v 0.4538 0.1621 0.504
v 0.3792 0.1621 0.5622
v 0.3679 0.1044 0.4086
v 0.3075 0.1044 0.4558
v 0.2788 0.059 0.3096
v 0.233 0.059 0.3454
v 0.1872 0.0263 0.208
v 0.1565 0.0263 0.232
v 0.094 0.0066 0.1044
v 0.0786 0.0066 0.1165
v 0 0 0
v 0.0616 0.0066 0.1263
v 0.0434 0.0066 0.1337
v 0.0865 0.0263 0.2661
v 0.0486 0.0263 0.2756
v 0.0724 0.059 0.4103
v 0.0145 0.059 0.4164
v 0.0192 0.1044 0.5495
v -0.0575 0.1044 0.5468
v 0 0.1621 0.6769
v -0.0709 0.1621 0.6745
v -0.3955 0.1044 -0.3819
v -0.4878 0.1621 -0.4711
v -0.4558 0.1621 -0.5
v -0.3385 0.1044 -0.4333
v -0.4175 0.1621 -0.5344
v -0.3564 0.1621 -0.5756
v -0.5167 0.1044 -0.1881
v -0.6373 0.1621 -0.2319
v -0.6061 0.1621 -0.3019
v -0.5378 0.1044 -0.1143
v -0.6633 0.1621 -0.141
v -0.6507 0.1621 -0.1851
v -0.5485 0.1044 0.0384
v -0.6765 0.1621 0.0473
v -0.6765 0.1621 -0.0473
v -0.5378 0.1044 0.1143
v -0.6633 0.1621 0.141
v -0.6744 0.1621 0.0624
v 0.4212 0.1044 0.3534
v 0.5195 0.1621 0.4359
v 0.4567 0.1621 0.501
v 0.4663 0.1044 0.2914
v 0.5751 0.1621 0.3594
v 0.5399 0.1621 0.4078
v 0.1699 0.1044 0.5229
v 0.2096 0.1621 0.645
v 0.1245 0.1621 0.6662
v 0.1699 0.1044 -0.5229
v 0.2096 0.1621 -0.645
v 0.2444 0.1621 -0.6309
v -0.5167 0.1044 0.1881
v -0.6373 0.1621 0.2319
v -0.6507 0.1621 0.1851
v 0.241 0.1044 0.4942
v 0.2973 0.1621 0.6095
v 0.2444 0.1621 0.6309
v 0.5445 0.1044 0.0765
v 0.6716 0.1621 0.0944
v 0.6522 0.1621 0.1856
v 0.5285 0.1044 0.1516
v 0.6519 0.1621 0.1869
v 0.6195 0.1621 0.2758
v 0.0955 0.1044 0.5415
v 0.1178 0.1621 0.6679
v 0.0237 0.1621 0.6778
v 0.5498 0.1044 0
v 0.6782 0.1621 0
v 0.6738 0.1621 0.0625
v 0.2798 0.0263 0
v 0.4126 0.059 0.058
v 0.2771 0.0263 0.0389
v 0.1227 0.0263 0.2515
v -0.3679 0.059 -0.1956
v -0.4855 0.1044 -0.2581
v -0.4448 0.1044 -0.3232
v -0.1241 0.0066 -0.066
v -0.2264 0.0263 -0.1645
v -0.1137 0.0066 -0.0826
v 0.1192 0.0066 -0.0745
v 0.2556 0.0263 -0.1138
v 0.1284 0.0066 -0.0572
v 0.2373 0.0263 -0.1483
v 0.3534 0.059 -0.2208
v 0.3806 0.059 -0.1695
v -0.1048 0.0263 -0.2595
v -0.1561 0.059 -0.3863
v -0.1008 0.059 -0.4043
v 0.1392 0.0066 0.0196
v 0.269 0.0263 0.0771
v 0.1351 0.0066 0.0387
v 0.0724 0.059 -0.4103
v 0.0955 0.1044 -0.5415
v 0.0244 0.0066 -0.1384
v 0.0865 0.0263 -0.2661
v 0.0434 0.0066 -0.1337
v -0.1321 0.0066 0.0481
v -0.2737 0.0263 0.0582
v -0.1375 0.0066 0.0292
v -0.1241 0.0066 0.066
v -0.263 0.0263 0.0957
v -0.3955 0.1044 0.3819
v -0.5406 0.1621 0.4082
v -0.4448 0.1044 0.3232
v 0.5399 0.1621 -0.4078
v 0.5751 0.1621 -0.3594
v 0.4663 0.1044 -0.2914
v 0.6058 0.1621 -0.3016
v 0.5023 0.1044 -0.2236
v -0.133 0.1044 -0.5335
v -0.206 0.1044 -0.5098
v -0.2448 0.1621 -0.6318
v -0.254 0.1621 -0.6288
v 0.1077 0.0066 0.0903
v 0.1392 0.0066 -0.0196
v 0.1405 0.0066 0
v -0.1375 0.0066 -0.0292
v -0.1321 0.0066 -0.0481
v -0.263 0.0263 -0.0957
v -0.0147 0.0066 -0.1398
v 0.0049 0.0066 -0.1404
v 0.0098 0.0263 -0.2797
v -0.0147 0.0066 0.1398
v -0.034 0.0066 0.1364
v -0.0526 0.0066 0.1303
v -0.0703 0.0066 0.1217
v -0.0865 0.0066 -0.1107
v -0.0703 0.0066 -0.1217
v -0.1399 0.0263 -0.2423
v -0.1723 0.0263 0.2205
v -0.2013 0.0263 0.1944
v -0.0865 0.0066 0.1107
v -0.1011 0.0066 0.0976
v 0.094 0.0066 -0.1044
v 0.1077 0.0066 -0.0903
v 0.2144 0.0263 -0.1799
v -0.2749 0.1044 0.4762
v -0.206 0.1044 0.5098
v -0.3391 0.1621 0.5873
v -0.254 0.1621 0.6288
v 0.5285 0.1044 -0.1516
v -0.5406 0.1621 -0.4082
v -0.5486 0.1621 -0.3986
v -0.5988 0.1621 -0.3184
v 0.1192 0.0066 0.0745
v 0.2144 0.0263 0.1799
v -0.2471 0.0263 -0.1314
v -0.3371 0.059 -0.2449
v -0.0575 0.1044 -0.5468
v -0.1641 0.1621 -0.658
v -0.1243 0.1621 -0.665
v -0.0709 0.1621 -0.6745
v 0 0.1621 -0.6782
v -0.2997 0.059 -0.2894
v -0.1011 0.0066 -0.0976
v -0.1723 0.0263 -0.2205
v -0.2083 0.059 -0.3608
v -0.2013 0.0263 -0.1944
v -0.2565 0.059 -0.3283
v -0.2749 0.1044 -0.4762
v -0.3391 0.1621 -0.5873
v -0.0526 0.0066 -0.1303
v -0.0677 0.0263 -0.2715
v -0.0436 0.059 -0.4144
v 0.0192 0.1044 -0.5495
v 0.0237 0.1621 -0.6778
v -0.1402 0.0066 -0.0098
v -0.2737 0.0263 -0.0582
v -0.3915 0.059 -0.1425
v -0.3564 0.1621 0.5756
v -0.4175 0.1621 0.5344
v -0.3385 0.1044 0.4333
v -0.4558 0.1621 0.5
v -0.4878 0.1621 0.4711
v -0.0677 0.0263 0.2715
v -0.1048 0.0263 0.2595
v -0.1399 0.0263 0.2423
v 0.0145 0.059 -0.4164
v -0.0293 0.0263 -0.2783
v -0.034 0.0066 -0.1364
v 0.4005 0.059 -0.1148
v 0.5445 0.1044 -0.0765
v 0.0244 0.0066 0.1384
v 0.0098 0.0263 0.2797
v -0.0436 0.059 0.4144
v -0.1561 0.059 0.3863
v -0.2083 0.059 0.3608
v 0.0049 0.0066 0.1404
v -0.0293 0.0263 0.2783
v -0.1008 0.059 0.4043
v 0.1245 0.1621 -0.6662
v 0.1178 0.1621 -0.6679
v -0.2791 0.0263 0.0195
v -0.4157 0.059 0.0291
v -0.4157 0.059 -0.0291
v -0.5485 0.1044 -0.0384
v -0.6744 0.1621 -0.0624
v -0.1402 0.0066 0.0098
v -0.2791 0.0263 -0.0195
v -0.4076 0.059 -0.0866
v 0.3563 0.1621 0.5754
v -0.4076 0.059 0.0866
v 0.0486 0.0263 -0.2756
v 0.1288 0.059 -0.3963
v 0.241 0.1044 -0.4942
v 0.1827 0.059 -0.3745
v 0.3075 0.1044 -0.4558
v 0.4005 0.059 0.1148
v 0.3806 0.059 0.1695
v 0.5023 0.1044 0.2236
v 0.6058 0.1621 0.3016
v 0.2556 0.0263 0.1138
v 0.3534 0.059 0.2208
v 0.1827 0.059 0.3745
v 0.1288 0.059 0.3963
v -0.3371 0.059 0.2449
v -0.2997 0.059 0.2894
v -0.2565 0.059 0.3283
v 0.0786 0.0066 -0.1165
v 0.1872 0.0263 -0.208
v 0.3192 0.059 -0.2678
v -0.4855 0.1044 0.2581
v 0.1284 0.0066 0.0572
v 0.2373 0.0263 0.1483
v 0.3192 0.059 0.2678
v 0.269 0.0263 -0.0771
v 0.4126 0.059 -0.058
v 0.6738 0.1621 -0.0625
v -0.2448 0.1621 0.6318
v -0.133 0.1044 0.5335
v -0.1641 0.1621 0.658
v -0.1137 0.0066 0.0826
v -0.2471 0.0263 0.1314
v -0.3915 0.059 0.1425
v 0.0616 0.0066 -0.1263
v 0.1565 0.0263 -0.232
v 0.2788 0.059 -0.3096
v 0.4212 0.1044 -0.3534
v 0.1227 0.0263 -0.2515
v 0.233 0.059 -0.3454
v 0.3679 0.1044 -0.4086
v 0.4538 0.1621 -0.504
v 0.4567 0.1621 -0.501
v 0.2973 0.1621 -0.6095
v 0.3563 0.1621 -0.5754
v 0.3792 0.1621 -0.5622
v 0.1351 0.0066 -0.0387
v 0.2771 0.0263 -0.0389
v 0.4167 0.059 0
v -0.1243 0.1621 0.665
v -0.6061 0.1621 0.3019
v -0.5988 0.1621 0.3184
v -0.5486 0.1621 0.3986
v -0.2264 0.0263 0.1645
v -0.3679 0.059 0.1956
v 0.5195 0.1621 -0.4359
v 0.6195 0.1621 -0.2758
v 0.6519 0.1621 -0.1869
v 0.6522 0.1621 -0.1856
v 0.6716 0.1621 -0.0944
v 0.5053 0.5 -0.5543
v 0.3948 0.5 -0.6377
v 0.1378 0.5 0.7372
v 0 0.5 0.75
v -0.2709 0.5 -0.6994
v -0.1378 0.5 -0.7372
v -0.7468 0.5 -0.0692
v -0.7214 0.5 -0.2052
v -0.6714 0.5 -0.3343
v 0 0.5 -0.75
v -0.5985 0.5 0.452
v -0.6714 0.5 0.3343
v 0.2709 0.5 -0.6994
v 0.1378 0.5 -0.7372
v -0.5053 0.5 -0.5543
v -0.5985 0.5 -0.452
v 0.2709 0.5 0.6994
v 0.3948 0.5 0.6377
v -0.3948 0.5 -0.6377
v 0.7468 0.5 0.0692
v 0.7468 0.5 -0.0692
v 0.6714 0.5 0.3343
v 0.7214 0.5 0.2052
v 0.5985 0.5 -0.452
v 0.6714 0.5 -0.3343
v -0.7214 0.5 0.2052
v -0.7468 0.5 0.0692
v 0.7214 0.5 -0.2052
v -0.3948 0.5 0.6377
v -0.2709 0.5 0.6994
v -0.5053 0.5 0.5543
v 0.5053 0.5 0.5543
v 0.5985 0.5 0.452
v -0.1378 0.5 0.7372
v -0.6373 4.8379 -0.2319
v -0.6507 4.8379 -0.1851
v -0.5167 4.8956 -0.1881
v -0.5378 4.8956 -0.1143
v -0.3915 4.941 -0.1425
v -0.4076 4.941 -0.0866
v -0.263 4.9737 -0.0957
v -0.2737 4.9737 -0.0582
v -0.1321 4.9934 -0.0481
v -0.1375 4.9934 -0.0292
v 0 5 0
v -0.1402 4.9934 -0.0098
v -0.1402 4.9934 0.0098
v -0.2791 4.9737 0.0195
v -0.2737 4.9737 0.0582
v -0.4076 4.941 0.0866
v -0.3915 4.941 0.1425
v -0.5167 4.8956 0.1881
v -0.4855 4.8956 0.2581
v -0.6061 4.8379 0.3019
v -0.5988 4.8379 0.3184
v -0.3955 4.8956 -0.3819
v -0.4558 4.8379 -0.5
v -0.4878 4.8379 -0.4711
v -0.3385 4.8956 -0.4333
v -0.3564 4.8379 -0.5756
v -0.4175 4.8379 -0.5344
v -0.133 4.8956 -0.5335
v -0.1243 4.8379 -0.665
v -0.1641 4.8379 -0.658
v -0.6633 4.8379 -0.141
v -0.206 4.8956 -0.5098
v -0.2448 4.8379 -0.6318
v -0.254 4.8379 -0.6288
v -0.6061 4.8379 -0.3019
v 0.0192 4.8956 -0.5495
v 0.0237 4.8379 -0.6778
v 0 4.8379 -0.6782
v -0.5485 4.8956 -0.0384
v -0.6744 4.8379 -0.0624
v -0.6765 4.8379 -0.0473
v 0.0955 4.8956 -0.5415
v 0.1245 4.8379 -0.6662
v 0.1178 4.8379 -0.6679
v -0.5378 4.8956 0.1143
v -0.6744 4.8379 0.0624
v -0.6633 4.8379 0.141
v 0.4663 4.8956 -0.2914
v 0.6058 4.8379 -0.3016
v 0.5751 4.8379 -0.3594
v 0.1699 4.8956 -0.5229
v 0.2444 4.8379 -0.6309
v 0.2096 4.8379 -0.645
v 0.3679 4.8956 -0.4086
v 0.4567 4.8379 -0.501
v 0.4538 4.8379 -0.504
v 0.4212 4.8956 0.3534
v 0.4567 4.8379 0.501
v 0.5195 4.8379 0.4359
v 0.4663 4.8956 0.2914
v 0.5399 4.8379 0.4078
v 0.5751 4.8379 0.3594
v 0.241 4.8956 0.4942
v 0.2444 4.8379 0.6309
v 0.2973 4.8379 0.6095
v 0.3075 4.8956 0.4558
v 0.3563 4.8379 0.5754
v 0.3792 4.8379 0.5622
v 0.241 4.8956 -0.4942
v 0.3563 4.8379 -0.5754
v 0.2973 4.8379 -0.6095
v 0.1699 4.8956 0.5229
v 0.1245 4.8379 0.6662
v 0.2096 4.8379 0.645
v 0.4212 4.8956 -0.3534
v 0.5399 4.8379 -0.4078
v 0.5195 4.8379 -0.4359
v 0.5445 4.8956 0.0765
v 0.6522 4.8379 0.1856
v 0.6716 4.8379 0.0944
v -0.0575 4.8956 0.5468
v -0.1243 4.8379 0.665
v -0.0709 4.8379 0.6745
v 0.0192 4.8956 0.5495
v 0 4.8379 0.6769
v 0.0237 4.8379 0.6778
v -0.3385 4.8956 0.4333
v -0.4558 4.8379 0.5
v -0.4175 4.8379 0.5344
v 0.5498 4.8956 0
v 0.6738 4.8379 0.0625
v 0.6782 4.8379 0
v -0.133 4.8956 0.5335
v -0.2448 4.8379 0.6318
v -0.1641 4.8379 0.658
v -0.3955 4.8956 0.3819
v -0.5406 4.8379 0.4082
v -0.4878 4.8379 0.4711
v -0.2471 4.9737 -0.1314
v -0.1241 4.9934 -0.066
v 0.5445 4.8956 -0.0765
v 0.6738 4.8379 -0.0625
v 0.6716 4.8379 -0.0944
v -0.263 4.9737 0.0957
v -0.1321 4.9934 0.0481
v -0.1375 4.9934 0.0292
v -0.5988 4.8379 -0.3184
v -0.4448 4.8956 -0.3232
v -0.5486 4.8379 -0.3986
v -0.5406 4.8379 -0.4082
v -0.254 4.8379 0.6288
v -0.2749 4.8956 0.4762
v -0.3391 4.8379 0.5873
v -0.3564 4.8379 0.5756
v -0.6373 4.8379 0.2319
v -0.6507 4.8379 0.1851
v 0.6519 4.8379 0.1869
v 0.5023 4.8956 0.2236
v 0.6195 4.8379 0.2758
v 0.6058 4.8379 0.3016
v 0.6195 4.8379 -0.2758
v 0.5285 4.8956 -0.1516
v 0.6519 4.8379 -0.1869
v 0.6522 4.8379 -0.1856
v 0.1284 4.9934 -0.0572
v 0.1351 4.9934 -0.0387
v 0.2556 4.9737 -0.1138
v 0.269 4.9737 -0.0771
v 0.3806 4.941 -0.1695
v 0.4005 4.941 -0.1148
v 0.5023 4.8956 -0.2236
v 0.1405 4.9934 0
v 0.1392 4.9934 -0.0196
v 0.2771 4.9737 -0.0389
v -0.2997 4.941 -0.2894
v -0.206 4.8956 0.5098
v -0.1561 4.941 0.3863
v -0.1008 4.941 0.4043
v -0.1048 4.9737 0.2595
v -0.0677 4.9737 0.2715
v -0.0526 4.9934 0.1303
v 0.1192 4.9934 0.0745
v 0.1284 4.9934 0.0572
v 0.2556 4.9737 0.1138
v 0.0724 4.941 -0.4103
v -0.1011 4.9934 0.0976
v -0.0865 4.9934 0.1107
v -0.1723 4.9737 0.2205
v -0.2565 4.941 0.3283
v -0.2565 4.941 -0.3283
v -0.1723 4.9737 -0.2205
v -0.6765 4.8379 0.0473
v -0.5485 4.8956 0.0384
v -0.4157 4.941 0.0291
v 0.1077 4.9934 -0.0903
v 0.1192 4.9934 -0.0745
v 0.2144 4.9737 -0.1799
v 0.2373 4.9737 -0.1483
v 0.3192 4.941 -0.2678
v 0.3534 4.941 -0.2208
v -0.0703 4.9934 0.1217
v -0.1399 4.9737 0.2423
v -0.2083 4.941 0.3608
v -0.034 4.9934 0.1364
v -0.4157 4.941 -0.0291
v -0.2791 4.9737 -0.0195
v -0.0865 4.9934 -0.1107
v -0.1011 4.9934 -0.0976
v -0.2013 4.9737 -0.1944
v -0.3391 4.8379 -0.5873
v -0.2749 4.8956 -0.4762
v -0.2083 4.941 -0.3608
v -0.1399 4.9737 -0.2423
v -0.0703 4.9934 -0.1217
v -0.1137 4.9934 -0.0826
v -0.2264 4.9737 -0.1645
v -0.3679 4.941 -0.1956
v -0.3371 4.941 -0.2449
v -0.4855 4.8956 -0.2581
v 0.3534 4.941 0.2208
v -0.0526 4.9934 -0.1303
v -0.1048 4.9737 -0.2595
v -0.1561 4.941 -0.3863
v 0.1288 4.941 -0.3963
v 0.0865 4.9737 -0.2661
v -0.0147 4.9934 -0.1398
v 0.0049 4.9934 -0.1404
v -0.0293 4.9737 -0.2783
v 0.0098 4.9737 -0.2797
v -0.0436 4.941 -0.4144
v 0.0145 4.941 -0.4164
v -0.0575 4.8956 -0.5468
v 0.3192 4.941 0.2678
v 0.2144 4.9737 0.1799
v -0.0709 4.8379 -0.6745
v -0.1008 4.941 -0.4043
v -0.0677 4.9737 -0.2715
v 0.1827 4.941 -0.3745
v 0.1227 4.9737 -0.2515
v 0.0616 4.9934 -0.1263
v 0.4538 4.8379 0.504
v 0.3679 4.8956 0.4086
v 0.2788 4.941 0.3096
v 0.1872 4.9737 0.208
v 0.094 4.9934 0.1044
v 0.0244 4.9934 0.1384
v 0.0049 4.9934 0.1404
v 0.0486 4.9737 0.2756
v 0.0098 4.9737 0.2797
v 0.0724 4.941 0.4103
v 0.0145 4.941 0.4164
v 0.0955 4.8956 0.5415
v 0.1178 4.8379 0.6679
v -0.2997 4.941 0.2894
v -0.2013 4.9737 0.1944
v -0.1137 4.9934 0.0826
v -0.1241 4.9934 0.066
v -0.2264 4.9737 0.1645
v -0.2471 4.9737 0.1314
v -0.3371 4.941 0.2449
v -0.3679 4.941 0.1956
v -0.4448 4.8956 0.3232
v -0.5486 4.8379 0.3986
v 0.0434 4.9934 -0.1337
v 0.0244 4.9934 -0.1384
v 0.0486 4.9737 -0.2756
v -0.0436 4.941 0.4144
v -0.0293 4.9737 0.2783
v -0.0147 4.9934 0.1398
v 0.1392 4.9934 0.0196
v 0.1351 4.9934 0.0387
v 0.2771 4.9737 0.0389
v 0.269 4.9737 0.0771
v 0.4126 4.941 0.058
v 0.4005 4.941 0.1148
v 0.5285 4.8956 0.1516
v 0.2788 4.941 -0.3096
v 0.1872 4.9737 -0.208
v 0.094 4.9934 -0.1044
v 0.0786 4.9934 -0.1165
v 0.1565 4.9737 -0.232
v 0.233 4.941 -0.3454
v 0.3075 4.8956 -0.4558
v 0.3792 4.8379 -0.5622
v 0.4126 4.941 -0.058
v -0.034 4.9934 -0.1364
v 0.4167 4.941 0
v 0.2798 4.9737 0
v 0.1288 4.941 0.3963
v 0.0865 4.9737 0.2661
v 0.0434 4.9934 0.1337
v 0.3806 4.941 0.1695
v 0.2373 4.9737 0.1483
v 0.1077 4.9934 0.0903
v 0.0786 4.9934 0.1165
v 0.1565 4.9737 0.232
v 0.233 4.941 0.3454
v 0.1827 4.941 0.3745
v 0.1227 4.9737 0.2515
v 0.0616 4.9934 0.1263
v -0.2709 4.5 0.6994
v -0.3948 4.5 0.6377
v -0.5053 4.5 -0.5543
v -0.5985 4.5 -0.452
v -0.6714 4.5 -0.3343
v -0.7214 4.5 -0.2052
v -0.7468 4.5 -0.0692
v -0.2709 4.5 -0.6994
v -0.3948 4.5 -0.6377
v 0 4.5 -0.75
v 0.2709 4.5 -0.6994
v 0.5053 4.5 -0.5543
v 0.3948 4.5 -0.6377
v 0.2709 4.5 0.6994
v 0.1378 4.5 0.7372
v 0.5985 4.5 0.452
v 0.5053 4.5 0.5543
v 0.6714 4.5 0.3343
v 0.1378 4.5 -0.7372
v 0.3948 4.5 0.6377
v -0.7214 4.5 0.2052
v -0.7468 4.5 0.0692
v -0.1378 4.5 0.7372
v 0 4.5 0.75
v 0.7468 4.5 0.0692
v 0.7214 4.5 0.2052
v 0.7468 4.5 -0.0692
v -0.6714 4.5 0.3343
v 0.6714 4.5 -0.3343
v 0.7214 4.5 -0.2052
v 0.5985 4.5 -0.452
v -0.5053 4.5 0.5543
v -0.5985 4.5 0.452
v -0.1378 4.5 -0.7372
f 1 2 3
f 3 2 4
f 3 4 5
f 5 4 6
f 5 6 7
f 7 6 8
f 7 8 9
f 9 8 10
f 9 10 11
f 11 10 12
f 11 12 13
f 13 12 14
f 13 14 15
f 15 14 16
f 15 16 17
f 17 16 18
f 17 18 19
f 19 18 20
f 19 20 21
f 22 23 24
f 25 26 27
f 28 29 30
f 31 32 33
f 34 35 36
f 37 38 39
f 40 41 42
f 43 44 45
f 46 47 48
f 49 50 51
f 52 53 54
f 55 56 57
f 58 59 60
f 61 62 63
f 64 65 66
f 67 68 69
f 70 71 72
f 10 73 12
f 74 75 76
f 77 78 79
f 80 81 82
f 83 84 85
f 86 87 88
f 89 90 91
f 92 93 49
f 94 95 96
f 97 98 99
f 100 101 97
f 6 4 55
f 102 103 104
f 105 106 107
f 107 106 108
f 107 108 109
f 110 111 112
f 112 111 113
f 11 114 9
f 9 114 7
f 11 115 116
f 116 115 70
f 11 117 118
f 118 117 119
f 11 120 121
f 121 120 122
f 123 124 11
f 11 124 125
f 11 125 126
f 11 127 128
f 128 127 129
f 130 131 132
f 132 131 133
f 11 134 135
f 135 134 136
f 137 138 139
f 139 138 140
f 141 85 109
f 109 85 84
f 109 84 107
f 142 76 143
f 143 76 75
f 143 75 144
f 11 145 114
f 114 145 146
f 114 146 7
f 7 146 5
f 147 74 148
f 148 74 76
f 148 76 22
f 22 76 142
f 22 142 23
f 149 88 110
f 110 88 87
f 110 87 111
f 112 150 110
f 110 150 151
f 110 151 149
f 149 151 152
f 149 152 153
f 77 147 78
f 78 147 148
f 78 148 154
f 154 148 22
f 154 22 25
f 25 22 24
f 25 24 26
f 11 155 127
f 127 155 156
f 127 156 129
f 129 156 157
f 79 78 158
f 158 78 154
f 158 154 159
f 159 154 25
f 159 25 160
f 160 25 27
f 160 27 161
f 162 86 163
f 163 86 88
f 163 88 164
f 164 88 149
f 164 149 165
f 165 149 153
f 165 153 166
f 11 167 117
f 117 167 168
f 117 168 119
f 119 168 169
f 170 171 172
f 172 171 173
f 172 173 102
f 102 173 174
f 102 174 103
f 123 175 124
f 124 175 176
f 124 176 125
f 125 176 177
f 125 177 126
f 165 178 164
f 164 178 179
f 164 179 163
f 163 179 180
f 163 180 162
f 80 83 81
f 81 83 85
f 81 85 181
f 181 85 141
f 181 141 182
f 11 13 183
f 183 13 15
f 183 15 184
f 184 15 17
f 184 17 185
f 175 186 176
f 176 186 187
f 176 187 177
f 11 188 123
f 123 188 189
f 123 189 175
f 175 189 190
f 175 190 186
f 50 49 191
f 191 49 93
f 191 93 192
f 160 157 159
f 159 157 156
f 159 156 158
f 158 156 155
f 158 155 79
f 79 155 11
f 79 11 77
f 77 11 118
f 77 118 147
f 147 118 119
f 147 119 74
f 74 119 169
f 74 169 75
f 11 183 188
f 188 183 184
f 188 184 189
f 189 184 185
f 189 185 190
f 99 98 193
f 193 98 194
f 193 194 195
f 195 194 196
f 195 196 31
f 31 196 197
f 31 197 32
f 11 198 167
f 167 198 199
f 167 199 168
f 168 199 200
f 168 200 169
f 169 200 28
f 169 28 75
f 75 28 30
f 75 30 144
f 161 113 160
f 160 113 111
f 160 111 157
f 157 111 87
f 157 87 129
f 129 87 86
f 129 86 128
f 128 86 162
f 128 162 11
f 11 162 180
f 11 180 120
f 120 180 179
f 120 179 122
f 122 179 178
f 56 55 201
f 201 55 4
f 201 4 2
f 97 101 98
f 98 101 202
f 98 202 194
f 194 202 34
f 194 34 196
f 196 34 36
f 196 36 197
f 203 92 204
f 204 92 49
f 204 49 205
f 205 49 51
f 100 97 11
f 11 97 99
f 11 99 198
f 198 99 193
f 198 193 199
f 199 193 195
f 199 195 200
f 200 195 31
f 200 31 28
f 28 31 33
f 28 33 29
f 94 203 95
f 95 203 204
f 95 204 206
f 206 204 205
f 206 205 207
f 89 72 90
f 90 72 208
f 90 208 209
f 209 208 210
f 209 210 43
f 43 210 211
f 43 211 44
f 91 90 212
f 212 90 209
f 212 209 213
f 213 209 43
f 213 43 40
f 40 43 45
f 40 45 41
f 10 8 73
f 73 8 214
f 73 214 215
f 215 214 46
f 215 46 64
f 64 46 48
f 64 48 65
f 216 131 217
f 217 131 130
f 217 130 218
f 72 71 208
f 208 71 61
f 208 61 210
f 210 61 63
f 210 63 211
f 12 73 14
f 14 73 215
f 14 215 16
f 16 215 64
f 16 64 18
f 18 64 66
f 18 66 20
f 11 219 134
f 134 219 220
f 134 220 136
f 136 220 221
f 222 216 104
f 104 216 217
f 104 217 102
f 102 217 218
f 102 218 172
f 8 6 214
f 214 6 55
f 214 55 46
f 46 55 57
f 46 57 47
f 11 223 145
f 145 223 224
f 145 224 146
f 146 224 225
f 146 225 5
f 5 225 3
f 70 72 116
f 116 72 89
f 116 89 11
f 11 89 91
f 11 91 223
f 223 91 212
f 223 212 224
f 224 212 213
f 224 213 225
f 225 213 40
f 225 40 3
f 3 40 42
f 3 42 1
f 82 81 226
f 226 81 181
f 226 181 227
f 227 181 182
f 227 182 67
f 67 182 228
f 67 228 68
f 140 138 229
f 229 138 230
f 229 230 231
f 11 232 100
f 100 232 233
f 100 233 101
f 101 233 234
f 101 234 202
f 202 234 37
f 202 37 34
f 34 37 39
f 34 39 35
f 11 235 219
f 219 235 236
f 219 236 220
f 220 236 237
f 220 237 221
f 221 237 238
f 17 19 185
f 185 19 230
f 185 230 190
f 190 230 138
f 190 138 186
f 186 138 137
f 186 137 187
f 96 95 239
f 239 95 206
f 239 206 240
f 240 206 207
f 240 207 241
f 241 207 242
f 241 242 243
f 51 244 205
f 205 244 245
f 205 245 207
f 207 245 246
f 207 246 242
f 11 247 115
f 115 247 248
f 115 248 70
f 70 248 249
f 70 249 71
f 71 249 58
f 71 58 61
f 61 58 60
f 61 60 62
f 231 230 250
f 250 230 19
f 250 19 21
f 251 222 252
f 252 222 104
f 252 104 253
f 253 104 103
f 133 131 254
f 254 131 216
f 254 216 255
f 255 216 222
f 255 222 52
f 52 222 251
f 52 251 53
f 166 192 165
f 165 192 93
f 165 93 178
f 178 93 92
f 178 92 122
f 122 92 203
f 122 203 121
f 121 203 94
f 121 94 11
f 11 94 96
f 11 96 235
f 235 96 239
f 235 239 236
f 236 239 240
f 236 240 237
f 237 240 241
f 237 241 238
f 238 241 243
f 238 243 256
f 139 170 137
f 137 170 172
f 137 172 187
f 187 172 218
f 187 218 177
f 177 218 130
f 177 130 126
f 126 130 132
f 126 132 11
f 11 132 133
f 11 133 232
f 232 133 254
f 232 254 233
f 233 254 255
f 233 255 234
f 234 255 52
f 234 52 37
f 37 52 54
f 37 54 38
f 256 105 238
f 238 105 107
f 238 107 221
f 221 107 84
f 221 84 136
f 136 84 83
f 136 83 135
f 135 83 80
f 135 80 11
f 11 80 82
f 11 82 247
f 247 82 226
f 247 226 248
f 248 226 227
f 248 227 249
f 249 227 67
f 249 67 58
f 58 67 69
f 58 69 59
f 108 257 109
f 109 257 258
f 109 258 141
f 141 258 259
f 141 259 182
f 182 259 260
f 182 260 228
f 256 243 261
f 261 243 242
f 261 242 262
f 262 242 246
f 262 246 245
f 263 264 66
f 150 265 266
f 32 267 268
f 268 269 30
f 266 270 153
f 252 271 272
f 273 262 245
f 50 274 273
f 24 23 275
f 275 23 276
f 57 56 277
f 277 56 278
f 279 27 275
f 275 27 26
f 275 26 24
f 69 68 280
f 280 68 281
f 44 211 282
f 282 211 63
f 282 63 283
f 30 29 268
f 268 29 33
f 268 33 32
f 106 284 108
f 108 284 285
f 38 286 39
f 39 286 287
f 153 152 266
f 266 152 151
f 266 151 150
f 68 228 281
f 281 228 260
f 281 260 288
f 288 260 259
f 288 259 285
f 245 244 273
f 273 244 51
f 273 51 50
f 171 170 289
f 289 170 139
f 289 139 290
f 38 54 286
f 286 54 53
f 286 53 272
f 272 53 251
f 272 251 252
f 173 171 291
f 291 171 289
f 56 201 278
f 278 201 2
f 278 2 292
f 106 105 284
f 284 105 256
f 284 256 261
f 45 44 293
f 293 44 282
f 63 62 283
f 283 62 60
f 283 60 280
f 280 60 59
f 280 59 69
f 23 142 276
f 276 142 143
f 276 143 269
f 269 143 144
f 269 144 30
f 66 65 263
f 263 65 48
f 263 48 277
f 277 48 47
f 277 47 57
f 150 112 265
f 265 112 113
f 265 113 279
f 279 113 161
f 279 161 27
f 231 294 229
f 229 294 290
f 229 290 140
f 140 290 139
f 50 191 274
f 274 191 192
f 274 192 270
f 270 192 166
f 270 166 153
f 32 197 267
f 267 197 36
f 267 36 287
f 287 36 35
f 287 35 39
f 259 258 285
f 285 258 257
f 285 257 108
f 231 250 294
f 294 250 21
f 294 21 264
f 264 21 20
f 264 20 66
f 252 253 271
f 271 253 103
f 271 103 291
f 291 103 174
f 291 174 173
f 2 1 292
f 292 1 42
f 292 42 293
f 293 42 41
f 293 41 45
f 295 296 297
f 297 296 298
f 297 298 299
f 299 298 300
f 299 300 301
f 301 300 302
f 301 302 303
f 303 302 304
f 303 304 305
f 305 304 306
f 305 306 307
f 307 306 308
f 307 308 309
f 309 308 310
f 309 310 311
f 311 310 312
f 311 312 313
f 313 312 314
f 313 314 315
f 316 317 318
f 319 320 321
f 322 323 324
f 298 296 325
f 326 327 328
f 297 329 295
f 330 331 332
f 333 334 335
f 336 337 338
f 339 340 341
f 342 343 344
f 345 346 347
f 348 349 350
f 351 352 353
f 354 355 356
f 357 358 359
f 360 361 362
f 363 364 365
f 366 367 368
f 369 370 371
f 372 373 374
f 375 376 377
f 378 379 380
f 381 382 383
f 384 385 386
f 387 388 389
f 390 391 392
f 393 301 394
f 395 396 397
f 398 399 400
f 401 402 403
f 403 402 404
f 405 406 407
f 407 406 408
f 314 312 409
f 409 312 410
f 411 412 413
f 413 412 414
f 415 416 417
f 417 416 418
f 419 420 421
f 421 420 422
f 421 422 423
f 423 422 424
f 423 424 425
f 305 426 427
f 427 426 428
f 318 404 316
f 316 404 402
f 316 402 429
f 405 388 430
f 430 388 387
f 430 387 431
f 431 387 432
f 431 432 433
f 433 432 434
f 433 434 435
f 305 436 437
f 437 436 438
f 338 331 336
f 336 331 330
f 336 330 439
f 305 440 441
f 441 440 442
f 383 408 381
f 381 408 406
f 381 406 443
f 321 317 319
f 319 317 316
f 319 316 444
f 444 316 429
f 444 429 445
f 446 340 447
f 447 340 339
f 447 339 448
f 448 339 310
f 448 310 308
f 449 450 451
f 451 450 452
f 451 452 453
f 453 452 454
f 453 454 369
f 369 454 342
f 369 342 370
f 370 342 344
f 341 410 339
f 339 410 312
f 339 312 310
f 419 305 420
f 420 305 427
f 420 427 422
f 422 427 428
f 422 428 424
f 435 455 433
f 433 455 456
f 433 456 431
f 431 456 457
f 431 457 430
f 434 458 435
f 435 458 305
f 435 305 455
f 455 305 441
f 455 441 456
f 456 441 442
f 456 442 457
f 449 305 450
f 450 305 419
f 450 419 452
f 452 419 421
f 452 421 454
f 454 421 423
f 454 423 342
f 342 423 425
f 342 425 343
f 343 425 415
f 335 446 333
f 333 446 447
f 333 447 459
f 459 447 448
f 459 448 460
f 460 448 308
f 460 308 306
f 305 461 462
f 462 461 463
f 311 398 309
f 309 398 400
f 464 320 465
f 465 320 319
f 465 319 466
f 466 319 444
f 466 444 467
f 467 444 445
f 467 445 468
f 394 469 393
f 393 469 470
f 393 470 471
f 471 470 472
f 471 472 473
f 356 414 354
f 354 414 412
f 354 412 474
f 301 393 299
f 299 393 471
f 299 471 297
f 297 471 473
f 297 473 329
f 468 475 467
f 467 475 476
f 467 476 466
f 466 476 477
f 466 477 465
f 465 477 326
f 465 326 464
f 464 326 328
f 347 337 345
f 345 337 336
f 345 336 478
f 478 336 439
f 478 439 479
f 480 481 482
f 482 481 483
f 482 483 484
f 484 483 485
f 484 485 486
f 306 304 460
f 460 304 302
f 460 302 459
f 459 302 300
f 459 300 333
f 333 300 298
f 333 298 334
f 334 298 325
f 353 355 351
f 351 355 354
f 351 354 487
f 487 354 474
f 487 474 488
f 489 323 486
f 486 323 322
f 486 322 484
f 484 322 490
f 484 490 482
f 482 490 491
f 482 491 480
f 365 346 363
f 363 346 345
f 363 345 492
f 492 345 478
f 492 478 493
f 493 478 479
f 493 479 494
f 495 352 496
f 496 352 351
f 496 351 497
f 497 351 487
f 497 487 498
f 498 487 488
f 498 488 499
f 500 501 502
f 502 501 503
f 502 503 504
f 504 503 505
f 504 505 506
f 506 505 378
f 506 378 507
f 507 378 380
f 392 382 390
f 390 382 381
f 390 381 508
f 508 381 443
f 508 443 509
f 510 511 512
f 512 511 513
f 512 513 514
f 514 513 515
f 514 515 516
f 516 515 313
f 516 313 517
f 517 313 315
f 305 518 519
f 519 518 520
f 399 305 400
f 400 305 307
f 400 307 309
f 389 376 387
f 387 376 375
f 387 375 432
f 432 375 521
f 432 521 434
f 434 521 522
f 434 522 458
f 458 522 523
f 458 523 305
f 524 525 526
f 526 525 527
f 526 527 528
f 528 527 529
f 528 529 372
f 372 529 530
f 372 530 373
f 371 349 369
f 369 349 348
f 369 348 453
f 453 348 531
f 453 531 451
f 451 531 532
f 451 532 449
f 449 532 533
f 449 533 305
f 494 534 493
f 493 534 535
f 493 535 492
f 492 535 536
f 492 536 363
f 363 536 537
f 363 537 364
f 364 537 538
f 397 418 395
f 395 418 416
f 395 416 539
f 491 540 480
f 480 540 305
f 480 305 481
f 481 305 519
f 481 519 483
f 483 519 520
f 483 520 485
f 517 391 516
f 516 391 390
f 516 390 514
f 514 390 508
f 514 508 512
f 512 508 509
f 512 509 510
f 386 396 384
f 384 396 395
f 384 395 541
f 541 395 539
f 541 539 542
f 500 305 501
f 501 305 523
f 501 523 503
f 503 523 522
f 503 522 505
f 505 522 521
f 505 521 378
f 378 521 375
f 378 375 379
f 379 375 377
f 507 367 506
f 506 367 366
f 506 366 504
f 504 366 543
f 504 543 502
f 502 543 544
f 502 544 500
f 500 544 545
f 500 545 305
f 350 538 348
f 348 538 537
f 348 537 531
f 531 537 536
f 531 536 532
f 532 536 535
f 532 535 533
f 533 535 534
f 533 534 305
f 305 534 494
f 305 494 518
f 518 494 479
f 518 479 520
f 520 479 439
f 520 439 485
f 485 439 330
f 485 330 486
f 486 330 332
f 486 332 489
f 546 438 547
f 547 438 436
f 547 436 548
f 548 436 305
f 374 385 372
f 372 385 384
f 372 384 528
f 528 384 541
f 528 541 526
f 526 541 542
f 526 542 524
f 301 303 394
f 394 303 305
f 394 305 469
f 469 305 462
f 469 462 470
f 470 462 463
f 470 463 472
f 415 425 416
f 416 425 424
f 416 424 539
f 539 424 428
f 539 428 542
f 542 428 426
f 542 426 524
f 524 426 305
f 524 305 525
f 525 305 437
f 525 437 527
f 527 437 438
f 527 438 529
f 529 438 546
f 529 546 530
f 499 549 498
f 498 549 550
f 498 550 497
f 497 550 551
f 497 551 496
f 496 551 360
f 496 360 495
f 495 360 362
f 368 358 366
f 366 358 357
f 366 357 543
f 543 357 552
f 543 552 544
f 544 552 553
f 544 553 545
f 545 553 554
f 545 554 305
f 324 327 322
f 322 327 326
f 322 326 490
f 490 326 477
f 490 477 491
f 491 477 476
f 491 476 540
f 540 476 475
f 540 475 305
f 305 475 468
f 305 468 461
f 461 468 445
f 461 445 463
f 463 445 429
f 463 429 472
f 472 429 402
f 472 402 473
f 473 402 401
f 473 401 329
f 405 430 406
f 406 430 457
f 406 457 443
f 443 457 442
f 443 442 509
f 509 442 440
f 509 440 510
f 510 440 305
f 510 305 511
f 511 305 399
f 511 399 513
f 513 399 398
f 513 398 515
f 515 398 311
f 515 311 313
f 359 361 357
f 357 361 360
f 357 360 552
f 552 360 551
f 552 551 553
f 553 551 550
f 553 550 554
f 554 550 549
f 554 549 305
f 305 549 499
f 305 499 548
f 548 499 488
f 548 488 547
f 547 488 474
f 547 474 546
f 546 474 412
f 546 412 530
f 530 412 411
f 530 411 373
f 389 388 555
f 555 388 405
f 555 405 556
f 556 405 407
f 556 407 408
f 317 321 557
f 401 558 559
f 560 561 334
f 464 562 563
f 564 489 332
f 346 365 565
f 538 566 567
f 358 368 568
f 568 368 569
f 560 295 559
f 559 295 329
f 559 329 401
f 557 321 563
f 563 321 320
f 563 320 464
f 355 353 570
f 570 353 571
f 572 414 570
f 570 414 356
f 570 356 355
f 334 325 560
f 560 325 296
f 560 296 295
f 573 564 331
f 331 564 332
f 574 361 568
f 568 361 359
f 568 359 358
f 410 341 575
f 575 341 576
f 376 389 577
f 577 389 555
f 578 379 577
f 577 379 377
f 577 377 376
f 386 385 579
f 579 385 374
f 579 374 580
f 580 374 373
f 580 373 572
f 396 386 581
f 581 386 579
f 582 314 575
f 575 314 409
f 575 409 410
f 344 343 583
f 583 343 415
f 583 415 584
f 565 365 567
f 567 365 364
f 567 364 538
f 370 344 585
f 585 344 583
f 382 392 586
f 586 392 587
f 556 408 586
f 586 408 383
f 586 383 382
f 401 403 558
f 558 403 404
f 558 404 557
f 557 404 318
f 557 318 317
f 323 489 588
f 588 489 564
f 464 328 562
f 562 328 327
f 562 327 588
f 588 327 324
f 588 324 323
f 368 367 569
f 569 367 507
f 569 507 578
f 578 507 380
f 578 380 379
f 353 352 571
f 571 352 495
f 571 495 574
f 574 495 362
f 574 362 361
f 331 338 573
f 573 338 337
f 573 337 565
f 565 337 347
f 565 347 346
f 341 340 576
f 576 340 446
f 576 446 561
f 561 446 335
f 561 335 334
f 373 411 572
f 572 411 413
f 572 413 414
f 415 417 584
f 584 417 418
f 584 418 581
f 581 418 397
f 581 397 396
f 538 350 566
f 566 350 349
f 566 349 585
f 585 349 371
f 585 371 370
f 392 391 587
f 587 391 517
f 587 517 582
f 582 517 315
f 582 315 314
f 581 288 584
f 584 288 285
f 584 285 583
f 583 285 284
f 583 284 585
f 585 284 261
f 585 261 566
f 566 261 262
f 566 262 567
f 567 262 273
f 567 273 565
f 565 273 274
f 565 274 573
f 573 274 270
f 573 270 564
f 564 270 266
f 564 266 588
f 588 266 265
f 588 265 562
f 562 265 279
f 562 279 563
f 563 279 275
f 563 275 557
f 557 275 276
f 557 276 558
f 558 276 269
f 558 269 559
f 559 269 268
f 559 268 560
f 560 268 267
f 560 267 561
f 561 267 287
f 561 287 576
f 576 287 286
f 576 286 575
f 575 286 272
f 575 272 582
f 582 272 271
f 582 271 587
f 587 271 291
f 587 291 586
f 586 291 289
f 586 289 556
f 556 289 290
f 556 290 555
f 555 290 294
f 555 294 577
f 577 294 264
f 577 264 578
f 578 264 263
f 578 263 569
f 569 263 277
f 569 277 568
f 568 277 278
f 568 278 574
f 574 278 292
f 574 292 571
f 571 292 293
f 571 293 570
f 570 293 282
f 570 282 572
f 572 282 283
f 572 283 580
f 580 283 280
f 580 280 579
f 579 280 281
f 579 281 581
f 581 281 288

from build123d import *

# Parameters (mm, degrees)
SKETCH1_R           = 0.75
BOSS_EXTRUDE1_DEPTH = 5


with BuildPart() as part:
    # Sketch1 → Boss-Extrude1 (new body)
    with BuildSketch(Plane(origin=(0, 0, 0), x_dir=(1, 0, 0), z_dir=(0, 1, 0))):
        Circle(SKETCH1_R)
    extrude(amount=BOSS_EXTRUDE1_DEPTH)

    # Sketch2 → Cut-Revolve2 (revolve, cut)
    with BuildSketch(Plane.XY):
        with BuildLine():
            Line((0.75, 4.799038106), (0.75, 5.1))
            Line((0.75, 5.1), (0, 5.1))
            Line((0, 5.1), (0, 5))
            ThreePointArc((0, 5), (0.388228568, 4.948888739), (0.75, 4.799038106))
        make_face()
        with BuildLine():
            Line((0.75, -0.1), (0, -0.1))
            Line((0, -0.1), (0, 0))
            ThreePointArc((0, 0), (0.388228568, 0.051111261), (0.75, 0.200961894))
            Line((0.75, 0.200961894), (0.75, -0.1))
        make_face()
    revolve(axis=Axis((0, 0, 0), (0, 1, 0)), mode=Mode.SUBTRACT)

    # Sketch3 → Cut-Revolve3 (revolve, cut)
    with BuildSketch(Plane.XY):
        with BuildLine():
            Line((-0.75, 4.5), (-0.678168292, 4.837941616))
            ThreePointArc((-0.678168292, 4.837941616), (-0.714349031, 4.818978947), (-0.75, 4.799038106))
            Line((-0.75, 4.799038106), (-0.75, 4.5))
        make_face()
        with BuildLine():
            Line((-0.75, 0.200961894), (-0.75, 0.5))
            Line((-0.75, 0.5), (-0.678168292, 0.162058384))
            ThreePointArc((-0.678168292, 0.162058384), (-0.714349031, 0.181021053), (-0.75, 0.200961894))
        make_face()
    revolve(axis=Axis((0, 0, 0), (0, 1, 0)), mode=Mode.SUBTRACT)


solid = part.part
